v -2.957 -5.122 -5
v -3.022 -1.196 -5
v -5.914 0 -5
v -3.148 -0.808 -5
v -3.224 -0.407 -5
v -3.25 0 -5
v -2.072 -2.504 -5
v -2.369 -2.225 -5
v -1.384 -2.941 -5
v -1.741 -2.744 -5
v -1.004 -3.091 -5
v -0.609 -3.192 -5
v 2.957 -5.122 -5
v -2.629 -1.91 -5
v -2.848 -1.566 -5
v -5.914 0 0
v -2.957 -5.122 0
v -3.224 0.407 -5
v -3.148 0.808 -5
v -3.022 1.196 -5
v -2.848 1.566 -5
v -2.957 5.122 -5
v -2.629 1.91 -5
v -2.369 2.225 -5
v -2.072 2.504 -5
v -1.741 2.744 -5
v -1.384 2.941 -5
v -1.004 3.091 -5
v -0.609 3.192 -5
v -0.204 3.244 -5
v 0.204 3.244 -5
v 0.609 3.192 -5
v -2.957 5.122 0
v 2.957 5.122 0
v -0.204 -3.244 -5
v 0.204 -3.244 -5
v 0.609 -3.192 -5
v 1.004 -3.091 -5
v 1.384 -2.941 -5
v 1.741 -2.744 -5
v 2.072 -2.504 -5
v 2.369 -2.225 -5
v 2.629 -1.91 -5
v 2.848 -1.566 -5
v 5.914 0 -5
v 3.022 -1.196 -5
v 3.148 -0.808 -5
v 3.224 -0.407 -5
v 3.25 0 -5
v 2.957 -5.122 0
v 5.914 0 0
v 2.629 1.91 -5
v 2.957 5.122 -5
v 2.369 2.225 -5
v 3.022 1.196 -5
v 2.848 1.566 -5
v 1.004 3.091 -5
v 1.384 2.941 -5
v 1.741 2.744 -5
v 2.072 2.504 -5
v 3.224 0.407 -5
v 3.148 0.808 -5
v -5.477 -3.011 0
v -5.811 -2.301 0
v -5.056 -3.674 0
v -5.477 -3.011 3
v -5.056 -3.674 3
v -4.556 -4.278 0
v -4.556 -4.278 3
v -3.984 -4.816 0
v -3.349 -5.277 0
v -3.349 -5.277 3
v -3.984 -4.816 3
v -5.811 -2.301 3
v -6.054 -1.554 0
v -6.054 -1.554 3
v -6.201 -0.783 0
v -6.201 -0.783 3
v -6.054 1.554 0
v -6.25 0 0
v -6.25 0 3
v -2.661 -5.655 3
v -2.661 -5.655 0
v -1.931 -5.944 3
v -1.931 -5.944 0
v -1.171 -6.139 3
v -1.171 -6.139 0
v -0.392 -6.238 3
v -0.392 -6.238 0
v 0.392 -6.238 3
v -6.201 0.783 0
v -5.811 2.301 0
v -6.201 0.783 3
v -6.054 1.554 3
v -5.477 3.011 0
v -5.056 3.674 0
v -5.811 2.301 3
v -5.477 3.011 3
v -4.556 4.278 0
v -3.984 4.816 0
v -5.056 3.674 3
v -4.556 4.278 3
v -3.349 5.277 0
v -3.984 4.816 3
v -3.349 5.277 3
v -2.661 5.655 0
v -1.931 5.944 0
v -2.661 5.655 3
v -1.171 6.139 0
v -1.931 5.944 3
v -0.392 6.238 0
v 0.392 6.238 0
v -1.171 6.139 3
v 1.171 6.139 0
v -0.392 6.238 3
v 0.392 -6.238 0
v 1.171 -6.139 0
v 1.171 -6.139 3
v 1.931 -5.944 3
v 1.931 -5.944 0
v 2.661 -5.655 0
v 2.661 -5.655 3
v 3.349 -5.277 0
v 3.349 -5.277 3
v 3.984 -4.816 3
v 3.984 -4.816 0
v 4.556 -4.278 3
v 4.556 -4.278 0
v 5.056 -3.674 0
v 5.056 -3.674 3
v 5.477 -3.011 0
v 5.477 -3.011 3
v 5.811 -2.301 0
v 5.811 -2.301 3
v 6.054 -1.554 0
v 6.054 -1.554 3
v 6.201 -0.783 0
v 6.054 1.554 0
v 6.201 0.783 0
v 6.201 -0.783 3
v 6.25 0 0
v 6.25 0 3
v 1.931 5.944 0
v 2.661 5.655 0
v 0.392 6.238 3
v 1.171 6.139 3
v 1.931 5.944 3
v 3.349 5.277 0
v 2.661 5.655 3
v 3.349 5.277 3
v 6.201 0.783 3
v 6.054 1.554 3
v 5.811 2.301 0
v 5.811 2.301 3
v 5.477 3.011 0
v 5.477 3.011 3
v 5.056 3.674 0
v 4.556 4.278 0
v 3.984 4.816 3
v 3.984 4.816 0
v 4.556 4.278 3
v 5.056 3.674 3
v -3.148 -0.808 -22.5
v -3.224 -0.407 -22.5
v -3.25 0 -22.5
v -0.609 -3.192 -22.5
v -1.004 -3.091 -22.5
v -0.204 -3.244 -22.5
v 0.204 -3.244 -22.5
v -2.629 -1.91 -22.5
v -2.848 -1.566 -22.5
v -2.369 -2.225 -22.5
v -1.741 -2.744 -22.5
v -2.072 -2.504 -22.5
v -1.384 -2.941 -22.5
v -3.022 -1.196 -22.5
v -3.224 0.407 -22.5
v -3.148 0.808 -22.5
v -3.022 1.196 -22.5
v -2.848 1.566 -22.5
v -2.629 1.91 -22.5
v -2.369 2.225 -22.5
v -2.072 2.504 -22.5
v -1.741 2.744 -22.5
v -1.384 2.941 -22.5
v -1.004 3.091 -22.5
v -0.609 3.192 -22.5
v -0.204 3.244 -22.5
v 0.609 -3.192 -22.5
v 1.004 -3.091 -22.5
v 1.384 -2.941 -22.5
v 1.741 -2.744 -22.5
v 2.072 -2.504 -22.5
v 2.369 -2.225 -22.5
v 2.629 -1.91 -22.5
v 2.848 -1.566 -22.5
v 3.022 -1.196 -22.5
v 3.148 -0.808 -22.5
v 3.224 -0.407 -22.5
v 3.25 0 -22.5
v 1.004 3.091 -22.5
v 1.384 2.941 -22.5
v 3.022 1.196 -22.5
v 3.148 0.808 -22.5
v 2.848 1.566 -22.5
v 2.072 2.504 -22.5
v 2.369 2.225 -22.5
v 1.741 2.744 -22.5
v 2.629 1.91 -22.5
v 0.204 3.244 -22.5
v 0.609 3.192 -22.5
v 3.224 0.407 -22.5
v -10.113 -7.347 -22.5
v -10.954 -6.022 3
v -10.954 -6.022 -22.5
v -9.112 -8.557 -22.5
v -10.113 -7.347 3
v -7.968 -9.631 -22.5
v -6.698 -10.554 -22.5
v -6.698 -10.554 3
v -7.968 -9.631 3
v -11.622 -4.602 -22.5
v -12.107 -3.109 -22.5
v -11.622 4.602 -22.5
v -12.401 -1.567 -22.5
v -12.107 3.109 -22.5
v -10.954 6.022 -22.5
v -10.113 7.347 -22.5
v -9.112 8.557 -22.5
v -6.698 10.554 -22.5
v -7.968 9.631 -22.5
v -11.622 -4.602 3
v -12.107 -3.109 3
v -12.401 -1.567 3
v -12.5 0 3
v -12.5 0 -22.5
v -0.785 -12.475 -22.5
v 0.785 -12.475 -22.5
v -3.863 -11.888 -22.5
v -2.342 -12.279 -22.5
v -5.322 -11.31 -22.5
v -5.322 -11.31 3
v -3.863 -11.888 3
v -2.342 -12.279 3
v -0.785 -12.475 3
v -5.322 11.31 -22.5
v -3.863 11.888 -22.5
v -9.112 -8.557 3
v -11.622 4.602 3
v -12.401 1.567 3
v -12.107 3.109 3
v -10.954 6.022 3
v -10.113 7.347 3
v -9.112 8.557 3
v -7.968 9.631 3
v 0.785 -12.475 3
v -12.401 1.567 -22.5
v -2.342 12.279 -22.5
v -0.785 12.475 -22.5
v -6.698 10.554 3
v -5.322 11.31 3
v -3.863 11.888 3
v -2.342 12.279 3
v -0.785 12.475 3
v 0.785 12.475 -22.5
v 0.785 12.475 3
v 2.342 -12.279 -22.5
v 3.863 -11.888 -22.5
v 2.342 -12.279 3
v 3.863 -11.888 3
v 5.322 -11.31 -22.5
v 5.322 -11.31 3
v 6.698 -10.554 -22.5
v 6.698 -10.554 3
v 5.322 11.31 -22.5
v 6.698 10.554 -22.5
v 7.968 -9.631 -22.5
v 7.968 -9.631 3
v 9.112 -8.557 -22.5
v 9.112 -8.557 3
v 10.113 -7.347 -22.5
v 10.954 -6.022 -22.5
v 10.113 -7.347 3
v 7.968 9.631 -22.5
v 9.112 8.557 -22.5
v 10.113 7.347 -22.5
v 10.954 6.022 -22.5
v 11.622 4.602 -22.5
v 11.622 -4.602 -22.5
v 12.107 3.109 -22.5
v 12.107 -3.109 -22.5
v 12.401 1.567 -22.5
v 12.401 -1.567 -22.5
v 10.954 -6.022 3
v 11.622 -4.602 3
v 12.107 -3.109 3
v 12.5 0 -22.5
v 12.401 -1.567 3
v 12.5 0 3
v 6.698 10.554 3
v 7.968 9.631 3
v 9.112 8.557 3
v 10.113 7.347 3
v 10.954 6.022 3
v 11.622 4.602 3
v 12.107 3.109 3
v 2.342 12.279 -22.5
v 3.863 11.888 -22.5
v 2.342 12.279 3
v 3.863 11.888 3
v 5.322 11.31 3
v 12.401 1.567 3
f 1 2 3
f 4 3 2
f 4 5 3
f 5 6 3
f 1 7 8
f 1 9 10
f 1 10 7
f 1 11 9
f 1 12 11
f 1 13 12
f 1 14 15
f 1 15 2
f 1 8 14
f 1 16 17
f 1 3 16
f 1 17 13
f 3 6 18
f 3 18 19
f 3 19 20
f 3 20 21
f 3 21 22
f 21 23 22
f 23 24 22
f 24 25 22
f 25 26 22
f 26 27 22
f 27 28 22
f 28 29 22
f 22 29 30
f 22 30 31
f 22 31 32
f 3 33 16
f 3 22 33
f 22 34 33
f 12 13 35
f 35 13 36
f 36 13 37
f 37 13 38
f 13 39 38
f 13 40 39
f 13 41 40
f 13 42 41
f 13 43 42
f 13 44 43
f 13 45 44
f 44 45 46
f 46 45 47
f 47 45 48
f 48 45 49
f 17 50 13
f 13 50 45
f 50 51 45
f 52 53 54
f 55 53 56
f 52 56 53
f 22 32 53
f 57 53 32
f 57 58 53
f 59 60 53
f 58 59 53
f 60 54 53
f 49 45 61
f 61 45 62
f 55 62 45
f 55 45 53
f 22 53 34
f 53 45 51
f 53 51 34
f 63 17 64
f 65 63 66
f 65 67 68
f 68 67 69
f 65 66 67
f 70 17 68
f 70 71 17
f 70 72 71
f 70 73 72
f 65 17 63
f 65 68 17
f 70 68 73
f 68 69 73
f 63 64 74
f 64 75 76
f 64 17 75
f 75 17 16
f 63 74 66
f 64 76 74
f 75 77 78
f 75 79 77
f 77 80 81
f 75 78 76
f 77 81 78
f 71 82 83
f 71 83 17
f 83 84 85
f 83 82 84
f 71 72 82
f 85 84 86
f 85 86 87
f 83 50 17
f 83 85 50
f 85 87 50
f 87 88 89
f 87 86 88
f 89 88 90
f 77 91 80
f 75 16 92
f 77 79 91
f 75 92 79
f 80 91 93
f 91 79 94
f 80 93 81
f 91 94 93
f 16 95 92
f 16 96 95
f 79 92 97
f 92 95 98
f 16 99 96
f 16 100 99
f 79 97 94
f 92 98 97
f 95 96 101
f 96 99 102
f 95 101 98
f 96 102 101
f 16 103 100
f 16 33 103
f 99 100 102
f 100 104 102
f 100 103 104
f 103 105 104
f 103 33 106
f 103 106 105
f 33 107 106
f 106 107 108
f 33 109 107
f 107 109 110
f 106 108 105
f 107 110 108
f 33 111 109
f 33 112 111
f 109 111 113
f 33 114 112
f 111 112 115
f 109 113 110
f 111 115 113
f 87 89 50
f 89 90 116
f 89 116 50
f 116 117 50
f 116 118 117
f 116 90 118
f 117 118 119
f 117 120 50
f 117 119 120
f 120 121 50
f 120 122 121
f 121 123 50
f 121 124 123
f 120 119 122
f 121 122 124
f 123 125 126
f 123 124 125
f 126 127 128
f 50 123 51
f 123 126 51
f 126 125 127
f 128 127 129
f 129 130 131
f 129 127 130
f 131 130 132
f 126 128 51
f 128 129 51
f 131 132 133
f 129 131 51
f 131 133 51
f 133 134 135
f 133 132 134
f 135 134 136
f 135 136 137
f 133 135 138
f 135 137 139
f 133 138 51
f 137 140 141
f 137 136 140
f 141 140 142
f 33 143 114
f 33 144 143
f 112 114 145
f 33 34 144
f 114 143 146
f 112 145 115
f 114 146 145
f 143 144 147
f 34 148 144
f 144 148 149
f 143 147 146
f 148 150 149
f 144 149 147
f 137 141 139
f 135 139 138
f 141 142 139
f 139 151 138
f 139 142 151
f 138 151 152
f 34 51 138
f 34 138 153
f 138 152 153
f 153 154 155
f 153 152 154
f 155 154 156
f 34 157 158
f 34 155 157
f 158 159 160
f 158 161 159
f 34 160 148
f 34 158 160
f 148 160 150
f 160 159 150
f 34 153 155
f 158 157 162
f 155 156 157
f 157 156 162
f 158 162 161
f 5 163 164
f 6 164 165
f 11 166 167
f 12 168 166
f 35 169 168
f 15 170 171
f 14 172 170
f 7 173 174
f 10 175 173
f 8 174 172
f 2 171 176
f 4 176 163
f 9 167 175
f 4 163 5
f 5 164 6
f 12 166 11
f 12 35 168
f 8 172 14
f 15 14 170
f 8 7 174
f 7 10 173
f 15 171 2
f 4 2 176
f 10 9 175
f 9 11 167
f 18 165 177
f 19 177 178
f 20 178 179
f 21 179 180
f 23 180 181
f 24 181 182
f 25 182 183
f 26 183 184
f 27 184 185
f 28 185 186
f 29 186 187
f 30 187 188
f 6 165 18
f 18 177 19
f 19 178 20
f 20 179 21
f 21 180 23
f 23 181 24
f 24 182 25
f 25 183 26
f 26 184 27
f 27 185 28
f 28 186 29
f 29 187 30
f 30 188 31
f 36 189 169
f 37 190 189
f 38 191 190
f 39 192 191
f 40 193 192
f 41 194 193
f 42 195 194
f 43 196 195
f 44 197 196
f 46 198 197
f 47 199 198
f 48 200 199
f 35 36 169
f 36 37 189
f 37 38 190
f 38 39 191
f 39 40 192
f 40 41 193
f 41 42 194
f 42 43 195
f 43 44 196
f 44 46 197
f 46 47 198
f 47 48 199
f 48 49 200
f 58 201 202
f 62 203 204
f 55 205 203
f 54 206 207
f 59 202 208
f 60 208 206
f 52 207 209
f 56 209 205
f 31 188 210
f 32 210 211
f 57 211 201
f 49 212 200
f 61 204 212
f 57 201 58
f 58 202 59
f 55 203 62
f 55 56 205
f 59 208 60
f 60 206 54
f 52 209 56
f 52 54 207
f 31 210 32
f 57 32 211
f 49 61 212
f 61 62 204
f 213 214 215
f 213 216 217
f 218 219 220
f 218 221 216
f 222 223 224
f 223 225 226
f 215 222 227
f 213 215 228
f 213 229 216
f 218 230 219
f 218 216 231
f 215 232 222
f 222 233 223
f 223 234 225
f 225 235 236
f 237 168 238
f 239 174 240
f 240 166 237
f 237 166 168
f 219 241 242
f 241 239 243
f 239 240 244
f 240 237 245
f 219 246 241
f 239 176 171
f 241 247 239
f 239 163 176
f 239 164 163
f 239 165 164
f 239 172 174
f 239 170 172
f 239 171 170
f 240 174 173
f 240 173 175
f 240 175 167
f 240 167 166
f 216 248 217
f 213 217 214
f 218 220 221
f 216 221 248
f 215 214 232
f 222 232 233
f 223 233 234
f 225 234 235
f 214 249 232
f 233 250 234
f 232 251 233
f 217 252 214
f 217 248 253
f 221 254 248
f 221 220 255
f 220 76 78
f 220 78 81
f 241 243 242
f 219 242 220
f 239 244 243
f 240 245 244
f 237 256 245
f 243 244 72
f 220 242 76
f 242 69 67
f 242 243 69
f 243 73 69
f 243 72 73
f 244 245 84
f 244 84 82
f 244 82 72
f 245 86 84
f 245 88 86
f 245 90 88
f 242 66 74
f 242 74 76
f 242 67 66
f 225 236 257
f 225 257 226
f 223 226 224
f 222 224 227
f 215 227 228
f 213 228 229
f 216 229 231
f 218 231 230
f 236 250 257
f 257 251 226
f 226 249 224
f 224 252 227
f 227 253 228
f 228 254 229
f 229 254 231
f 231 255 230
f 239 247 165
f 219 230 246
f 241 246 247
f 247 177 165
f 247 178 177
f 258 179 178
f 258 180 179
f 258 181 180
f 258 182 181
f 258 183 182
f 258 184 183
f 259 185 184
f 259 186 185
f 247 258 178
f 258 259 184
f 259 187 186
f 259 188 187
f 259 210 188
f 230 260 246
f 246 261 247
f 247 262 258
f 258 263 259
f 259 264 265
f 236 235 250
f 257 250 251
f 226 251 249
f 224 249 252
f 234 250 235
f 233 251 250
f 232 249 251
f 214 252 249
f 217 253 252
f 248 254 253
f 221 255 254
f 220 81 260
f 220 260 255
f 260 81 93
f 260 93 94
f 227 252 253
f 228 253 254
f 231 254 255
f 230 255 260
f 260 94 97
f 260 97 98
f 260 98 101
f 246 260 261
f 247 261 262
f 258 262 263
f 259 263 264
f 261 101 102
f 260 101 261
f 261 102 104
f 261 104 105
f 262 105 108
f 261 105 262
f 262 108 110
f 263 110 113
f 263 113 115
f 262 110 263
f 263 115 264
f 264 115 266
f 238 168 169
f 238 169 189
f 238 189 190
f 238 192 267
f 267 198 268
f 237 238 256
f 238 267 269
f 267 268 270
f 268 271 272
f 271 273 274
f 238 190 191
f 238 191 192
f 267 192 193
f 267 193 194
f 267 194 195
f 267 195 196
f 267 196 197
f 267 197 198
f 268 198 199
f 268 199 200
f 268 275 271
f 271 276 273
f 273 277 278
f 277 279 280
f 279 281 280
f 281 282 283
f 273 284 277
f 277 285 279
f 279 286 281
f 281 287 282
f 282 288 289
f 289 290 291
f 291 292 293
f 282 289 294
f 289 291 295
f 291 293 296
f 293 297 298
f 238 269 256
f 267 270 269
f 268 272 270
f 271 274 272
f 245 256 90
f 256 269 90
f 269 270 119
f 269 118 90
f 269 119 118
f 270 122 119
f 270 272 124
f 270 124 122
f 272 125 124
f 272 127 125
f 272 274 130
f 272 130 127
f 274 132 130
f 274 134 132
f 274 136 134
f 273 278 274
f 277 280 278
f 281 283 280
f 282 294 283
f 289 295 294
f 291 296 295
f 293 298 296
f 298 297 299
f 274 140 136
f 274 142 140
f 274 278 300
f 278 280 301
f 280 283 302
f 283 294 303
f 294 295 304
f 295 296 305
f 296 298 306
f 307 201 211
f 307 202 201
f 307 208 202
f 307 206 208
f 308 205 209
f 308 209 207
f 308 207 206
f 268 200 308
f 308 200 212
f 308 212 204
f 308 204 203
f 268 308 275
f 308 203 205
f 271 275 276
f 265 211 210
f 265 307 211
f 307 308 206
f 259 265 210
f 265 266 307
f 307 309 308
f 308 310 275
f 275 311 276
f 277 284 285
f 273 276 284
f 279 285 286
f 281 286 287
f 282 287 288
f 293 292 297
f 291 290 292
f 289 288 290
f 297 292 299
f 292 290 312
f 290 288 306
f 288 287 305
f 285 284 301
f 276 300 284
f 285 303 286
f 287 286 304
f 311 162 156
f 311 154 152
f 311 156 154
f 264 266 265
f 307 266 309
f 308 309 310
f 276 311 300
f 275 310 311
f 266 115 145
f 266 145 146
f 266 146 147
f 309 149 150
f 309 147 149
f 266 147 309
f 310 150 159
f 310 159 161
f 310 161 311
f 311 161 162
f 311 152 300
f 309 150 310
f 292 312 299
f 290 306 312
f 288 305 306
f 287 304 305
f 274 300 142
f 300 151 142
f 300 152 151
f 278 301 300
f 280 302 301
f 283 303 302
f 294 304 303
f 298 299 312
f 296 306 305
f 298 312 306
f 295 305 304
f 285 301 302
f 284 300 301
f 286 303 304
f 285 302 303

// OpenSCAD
$fn = 50;


difference() {
	union() {
		translate(v = [0, 0, -22.5000000000]) {
			cylinder(h = 25.5000000000, r = 12.5000000000);
		}
	}
	union() {
		translate(v = [0, 0, 0]) {
			rotate(a = [0, 0, 0]) {
				difference() {
					union() {
						translate(v = [0, 0, -5]) {
							linear_extrude(height = 5) {
								polygon(points = [[5.9142500000, 0.0000000000], [2.9571250000, 5.1218907443], [-2.9571250000, 5.1218907443], [-5.9142500000, 0.0000000000], [-2.9571250000, -5.1218907443], [2.9571250000, -5.1218907443]]);
							}
						}
					}
					union();
				}
			}
		}
		#cylinder(h = 3, r = 6.2500000000);
		#translate(v = [0, 0, -100.0000000000]) {
			cylinder(h = 200, r = 3.2500000000);
		}
	}
}
